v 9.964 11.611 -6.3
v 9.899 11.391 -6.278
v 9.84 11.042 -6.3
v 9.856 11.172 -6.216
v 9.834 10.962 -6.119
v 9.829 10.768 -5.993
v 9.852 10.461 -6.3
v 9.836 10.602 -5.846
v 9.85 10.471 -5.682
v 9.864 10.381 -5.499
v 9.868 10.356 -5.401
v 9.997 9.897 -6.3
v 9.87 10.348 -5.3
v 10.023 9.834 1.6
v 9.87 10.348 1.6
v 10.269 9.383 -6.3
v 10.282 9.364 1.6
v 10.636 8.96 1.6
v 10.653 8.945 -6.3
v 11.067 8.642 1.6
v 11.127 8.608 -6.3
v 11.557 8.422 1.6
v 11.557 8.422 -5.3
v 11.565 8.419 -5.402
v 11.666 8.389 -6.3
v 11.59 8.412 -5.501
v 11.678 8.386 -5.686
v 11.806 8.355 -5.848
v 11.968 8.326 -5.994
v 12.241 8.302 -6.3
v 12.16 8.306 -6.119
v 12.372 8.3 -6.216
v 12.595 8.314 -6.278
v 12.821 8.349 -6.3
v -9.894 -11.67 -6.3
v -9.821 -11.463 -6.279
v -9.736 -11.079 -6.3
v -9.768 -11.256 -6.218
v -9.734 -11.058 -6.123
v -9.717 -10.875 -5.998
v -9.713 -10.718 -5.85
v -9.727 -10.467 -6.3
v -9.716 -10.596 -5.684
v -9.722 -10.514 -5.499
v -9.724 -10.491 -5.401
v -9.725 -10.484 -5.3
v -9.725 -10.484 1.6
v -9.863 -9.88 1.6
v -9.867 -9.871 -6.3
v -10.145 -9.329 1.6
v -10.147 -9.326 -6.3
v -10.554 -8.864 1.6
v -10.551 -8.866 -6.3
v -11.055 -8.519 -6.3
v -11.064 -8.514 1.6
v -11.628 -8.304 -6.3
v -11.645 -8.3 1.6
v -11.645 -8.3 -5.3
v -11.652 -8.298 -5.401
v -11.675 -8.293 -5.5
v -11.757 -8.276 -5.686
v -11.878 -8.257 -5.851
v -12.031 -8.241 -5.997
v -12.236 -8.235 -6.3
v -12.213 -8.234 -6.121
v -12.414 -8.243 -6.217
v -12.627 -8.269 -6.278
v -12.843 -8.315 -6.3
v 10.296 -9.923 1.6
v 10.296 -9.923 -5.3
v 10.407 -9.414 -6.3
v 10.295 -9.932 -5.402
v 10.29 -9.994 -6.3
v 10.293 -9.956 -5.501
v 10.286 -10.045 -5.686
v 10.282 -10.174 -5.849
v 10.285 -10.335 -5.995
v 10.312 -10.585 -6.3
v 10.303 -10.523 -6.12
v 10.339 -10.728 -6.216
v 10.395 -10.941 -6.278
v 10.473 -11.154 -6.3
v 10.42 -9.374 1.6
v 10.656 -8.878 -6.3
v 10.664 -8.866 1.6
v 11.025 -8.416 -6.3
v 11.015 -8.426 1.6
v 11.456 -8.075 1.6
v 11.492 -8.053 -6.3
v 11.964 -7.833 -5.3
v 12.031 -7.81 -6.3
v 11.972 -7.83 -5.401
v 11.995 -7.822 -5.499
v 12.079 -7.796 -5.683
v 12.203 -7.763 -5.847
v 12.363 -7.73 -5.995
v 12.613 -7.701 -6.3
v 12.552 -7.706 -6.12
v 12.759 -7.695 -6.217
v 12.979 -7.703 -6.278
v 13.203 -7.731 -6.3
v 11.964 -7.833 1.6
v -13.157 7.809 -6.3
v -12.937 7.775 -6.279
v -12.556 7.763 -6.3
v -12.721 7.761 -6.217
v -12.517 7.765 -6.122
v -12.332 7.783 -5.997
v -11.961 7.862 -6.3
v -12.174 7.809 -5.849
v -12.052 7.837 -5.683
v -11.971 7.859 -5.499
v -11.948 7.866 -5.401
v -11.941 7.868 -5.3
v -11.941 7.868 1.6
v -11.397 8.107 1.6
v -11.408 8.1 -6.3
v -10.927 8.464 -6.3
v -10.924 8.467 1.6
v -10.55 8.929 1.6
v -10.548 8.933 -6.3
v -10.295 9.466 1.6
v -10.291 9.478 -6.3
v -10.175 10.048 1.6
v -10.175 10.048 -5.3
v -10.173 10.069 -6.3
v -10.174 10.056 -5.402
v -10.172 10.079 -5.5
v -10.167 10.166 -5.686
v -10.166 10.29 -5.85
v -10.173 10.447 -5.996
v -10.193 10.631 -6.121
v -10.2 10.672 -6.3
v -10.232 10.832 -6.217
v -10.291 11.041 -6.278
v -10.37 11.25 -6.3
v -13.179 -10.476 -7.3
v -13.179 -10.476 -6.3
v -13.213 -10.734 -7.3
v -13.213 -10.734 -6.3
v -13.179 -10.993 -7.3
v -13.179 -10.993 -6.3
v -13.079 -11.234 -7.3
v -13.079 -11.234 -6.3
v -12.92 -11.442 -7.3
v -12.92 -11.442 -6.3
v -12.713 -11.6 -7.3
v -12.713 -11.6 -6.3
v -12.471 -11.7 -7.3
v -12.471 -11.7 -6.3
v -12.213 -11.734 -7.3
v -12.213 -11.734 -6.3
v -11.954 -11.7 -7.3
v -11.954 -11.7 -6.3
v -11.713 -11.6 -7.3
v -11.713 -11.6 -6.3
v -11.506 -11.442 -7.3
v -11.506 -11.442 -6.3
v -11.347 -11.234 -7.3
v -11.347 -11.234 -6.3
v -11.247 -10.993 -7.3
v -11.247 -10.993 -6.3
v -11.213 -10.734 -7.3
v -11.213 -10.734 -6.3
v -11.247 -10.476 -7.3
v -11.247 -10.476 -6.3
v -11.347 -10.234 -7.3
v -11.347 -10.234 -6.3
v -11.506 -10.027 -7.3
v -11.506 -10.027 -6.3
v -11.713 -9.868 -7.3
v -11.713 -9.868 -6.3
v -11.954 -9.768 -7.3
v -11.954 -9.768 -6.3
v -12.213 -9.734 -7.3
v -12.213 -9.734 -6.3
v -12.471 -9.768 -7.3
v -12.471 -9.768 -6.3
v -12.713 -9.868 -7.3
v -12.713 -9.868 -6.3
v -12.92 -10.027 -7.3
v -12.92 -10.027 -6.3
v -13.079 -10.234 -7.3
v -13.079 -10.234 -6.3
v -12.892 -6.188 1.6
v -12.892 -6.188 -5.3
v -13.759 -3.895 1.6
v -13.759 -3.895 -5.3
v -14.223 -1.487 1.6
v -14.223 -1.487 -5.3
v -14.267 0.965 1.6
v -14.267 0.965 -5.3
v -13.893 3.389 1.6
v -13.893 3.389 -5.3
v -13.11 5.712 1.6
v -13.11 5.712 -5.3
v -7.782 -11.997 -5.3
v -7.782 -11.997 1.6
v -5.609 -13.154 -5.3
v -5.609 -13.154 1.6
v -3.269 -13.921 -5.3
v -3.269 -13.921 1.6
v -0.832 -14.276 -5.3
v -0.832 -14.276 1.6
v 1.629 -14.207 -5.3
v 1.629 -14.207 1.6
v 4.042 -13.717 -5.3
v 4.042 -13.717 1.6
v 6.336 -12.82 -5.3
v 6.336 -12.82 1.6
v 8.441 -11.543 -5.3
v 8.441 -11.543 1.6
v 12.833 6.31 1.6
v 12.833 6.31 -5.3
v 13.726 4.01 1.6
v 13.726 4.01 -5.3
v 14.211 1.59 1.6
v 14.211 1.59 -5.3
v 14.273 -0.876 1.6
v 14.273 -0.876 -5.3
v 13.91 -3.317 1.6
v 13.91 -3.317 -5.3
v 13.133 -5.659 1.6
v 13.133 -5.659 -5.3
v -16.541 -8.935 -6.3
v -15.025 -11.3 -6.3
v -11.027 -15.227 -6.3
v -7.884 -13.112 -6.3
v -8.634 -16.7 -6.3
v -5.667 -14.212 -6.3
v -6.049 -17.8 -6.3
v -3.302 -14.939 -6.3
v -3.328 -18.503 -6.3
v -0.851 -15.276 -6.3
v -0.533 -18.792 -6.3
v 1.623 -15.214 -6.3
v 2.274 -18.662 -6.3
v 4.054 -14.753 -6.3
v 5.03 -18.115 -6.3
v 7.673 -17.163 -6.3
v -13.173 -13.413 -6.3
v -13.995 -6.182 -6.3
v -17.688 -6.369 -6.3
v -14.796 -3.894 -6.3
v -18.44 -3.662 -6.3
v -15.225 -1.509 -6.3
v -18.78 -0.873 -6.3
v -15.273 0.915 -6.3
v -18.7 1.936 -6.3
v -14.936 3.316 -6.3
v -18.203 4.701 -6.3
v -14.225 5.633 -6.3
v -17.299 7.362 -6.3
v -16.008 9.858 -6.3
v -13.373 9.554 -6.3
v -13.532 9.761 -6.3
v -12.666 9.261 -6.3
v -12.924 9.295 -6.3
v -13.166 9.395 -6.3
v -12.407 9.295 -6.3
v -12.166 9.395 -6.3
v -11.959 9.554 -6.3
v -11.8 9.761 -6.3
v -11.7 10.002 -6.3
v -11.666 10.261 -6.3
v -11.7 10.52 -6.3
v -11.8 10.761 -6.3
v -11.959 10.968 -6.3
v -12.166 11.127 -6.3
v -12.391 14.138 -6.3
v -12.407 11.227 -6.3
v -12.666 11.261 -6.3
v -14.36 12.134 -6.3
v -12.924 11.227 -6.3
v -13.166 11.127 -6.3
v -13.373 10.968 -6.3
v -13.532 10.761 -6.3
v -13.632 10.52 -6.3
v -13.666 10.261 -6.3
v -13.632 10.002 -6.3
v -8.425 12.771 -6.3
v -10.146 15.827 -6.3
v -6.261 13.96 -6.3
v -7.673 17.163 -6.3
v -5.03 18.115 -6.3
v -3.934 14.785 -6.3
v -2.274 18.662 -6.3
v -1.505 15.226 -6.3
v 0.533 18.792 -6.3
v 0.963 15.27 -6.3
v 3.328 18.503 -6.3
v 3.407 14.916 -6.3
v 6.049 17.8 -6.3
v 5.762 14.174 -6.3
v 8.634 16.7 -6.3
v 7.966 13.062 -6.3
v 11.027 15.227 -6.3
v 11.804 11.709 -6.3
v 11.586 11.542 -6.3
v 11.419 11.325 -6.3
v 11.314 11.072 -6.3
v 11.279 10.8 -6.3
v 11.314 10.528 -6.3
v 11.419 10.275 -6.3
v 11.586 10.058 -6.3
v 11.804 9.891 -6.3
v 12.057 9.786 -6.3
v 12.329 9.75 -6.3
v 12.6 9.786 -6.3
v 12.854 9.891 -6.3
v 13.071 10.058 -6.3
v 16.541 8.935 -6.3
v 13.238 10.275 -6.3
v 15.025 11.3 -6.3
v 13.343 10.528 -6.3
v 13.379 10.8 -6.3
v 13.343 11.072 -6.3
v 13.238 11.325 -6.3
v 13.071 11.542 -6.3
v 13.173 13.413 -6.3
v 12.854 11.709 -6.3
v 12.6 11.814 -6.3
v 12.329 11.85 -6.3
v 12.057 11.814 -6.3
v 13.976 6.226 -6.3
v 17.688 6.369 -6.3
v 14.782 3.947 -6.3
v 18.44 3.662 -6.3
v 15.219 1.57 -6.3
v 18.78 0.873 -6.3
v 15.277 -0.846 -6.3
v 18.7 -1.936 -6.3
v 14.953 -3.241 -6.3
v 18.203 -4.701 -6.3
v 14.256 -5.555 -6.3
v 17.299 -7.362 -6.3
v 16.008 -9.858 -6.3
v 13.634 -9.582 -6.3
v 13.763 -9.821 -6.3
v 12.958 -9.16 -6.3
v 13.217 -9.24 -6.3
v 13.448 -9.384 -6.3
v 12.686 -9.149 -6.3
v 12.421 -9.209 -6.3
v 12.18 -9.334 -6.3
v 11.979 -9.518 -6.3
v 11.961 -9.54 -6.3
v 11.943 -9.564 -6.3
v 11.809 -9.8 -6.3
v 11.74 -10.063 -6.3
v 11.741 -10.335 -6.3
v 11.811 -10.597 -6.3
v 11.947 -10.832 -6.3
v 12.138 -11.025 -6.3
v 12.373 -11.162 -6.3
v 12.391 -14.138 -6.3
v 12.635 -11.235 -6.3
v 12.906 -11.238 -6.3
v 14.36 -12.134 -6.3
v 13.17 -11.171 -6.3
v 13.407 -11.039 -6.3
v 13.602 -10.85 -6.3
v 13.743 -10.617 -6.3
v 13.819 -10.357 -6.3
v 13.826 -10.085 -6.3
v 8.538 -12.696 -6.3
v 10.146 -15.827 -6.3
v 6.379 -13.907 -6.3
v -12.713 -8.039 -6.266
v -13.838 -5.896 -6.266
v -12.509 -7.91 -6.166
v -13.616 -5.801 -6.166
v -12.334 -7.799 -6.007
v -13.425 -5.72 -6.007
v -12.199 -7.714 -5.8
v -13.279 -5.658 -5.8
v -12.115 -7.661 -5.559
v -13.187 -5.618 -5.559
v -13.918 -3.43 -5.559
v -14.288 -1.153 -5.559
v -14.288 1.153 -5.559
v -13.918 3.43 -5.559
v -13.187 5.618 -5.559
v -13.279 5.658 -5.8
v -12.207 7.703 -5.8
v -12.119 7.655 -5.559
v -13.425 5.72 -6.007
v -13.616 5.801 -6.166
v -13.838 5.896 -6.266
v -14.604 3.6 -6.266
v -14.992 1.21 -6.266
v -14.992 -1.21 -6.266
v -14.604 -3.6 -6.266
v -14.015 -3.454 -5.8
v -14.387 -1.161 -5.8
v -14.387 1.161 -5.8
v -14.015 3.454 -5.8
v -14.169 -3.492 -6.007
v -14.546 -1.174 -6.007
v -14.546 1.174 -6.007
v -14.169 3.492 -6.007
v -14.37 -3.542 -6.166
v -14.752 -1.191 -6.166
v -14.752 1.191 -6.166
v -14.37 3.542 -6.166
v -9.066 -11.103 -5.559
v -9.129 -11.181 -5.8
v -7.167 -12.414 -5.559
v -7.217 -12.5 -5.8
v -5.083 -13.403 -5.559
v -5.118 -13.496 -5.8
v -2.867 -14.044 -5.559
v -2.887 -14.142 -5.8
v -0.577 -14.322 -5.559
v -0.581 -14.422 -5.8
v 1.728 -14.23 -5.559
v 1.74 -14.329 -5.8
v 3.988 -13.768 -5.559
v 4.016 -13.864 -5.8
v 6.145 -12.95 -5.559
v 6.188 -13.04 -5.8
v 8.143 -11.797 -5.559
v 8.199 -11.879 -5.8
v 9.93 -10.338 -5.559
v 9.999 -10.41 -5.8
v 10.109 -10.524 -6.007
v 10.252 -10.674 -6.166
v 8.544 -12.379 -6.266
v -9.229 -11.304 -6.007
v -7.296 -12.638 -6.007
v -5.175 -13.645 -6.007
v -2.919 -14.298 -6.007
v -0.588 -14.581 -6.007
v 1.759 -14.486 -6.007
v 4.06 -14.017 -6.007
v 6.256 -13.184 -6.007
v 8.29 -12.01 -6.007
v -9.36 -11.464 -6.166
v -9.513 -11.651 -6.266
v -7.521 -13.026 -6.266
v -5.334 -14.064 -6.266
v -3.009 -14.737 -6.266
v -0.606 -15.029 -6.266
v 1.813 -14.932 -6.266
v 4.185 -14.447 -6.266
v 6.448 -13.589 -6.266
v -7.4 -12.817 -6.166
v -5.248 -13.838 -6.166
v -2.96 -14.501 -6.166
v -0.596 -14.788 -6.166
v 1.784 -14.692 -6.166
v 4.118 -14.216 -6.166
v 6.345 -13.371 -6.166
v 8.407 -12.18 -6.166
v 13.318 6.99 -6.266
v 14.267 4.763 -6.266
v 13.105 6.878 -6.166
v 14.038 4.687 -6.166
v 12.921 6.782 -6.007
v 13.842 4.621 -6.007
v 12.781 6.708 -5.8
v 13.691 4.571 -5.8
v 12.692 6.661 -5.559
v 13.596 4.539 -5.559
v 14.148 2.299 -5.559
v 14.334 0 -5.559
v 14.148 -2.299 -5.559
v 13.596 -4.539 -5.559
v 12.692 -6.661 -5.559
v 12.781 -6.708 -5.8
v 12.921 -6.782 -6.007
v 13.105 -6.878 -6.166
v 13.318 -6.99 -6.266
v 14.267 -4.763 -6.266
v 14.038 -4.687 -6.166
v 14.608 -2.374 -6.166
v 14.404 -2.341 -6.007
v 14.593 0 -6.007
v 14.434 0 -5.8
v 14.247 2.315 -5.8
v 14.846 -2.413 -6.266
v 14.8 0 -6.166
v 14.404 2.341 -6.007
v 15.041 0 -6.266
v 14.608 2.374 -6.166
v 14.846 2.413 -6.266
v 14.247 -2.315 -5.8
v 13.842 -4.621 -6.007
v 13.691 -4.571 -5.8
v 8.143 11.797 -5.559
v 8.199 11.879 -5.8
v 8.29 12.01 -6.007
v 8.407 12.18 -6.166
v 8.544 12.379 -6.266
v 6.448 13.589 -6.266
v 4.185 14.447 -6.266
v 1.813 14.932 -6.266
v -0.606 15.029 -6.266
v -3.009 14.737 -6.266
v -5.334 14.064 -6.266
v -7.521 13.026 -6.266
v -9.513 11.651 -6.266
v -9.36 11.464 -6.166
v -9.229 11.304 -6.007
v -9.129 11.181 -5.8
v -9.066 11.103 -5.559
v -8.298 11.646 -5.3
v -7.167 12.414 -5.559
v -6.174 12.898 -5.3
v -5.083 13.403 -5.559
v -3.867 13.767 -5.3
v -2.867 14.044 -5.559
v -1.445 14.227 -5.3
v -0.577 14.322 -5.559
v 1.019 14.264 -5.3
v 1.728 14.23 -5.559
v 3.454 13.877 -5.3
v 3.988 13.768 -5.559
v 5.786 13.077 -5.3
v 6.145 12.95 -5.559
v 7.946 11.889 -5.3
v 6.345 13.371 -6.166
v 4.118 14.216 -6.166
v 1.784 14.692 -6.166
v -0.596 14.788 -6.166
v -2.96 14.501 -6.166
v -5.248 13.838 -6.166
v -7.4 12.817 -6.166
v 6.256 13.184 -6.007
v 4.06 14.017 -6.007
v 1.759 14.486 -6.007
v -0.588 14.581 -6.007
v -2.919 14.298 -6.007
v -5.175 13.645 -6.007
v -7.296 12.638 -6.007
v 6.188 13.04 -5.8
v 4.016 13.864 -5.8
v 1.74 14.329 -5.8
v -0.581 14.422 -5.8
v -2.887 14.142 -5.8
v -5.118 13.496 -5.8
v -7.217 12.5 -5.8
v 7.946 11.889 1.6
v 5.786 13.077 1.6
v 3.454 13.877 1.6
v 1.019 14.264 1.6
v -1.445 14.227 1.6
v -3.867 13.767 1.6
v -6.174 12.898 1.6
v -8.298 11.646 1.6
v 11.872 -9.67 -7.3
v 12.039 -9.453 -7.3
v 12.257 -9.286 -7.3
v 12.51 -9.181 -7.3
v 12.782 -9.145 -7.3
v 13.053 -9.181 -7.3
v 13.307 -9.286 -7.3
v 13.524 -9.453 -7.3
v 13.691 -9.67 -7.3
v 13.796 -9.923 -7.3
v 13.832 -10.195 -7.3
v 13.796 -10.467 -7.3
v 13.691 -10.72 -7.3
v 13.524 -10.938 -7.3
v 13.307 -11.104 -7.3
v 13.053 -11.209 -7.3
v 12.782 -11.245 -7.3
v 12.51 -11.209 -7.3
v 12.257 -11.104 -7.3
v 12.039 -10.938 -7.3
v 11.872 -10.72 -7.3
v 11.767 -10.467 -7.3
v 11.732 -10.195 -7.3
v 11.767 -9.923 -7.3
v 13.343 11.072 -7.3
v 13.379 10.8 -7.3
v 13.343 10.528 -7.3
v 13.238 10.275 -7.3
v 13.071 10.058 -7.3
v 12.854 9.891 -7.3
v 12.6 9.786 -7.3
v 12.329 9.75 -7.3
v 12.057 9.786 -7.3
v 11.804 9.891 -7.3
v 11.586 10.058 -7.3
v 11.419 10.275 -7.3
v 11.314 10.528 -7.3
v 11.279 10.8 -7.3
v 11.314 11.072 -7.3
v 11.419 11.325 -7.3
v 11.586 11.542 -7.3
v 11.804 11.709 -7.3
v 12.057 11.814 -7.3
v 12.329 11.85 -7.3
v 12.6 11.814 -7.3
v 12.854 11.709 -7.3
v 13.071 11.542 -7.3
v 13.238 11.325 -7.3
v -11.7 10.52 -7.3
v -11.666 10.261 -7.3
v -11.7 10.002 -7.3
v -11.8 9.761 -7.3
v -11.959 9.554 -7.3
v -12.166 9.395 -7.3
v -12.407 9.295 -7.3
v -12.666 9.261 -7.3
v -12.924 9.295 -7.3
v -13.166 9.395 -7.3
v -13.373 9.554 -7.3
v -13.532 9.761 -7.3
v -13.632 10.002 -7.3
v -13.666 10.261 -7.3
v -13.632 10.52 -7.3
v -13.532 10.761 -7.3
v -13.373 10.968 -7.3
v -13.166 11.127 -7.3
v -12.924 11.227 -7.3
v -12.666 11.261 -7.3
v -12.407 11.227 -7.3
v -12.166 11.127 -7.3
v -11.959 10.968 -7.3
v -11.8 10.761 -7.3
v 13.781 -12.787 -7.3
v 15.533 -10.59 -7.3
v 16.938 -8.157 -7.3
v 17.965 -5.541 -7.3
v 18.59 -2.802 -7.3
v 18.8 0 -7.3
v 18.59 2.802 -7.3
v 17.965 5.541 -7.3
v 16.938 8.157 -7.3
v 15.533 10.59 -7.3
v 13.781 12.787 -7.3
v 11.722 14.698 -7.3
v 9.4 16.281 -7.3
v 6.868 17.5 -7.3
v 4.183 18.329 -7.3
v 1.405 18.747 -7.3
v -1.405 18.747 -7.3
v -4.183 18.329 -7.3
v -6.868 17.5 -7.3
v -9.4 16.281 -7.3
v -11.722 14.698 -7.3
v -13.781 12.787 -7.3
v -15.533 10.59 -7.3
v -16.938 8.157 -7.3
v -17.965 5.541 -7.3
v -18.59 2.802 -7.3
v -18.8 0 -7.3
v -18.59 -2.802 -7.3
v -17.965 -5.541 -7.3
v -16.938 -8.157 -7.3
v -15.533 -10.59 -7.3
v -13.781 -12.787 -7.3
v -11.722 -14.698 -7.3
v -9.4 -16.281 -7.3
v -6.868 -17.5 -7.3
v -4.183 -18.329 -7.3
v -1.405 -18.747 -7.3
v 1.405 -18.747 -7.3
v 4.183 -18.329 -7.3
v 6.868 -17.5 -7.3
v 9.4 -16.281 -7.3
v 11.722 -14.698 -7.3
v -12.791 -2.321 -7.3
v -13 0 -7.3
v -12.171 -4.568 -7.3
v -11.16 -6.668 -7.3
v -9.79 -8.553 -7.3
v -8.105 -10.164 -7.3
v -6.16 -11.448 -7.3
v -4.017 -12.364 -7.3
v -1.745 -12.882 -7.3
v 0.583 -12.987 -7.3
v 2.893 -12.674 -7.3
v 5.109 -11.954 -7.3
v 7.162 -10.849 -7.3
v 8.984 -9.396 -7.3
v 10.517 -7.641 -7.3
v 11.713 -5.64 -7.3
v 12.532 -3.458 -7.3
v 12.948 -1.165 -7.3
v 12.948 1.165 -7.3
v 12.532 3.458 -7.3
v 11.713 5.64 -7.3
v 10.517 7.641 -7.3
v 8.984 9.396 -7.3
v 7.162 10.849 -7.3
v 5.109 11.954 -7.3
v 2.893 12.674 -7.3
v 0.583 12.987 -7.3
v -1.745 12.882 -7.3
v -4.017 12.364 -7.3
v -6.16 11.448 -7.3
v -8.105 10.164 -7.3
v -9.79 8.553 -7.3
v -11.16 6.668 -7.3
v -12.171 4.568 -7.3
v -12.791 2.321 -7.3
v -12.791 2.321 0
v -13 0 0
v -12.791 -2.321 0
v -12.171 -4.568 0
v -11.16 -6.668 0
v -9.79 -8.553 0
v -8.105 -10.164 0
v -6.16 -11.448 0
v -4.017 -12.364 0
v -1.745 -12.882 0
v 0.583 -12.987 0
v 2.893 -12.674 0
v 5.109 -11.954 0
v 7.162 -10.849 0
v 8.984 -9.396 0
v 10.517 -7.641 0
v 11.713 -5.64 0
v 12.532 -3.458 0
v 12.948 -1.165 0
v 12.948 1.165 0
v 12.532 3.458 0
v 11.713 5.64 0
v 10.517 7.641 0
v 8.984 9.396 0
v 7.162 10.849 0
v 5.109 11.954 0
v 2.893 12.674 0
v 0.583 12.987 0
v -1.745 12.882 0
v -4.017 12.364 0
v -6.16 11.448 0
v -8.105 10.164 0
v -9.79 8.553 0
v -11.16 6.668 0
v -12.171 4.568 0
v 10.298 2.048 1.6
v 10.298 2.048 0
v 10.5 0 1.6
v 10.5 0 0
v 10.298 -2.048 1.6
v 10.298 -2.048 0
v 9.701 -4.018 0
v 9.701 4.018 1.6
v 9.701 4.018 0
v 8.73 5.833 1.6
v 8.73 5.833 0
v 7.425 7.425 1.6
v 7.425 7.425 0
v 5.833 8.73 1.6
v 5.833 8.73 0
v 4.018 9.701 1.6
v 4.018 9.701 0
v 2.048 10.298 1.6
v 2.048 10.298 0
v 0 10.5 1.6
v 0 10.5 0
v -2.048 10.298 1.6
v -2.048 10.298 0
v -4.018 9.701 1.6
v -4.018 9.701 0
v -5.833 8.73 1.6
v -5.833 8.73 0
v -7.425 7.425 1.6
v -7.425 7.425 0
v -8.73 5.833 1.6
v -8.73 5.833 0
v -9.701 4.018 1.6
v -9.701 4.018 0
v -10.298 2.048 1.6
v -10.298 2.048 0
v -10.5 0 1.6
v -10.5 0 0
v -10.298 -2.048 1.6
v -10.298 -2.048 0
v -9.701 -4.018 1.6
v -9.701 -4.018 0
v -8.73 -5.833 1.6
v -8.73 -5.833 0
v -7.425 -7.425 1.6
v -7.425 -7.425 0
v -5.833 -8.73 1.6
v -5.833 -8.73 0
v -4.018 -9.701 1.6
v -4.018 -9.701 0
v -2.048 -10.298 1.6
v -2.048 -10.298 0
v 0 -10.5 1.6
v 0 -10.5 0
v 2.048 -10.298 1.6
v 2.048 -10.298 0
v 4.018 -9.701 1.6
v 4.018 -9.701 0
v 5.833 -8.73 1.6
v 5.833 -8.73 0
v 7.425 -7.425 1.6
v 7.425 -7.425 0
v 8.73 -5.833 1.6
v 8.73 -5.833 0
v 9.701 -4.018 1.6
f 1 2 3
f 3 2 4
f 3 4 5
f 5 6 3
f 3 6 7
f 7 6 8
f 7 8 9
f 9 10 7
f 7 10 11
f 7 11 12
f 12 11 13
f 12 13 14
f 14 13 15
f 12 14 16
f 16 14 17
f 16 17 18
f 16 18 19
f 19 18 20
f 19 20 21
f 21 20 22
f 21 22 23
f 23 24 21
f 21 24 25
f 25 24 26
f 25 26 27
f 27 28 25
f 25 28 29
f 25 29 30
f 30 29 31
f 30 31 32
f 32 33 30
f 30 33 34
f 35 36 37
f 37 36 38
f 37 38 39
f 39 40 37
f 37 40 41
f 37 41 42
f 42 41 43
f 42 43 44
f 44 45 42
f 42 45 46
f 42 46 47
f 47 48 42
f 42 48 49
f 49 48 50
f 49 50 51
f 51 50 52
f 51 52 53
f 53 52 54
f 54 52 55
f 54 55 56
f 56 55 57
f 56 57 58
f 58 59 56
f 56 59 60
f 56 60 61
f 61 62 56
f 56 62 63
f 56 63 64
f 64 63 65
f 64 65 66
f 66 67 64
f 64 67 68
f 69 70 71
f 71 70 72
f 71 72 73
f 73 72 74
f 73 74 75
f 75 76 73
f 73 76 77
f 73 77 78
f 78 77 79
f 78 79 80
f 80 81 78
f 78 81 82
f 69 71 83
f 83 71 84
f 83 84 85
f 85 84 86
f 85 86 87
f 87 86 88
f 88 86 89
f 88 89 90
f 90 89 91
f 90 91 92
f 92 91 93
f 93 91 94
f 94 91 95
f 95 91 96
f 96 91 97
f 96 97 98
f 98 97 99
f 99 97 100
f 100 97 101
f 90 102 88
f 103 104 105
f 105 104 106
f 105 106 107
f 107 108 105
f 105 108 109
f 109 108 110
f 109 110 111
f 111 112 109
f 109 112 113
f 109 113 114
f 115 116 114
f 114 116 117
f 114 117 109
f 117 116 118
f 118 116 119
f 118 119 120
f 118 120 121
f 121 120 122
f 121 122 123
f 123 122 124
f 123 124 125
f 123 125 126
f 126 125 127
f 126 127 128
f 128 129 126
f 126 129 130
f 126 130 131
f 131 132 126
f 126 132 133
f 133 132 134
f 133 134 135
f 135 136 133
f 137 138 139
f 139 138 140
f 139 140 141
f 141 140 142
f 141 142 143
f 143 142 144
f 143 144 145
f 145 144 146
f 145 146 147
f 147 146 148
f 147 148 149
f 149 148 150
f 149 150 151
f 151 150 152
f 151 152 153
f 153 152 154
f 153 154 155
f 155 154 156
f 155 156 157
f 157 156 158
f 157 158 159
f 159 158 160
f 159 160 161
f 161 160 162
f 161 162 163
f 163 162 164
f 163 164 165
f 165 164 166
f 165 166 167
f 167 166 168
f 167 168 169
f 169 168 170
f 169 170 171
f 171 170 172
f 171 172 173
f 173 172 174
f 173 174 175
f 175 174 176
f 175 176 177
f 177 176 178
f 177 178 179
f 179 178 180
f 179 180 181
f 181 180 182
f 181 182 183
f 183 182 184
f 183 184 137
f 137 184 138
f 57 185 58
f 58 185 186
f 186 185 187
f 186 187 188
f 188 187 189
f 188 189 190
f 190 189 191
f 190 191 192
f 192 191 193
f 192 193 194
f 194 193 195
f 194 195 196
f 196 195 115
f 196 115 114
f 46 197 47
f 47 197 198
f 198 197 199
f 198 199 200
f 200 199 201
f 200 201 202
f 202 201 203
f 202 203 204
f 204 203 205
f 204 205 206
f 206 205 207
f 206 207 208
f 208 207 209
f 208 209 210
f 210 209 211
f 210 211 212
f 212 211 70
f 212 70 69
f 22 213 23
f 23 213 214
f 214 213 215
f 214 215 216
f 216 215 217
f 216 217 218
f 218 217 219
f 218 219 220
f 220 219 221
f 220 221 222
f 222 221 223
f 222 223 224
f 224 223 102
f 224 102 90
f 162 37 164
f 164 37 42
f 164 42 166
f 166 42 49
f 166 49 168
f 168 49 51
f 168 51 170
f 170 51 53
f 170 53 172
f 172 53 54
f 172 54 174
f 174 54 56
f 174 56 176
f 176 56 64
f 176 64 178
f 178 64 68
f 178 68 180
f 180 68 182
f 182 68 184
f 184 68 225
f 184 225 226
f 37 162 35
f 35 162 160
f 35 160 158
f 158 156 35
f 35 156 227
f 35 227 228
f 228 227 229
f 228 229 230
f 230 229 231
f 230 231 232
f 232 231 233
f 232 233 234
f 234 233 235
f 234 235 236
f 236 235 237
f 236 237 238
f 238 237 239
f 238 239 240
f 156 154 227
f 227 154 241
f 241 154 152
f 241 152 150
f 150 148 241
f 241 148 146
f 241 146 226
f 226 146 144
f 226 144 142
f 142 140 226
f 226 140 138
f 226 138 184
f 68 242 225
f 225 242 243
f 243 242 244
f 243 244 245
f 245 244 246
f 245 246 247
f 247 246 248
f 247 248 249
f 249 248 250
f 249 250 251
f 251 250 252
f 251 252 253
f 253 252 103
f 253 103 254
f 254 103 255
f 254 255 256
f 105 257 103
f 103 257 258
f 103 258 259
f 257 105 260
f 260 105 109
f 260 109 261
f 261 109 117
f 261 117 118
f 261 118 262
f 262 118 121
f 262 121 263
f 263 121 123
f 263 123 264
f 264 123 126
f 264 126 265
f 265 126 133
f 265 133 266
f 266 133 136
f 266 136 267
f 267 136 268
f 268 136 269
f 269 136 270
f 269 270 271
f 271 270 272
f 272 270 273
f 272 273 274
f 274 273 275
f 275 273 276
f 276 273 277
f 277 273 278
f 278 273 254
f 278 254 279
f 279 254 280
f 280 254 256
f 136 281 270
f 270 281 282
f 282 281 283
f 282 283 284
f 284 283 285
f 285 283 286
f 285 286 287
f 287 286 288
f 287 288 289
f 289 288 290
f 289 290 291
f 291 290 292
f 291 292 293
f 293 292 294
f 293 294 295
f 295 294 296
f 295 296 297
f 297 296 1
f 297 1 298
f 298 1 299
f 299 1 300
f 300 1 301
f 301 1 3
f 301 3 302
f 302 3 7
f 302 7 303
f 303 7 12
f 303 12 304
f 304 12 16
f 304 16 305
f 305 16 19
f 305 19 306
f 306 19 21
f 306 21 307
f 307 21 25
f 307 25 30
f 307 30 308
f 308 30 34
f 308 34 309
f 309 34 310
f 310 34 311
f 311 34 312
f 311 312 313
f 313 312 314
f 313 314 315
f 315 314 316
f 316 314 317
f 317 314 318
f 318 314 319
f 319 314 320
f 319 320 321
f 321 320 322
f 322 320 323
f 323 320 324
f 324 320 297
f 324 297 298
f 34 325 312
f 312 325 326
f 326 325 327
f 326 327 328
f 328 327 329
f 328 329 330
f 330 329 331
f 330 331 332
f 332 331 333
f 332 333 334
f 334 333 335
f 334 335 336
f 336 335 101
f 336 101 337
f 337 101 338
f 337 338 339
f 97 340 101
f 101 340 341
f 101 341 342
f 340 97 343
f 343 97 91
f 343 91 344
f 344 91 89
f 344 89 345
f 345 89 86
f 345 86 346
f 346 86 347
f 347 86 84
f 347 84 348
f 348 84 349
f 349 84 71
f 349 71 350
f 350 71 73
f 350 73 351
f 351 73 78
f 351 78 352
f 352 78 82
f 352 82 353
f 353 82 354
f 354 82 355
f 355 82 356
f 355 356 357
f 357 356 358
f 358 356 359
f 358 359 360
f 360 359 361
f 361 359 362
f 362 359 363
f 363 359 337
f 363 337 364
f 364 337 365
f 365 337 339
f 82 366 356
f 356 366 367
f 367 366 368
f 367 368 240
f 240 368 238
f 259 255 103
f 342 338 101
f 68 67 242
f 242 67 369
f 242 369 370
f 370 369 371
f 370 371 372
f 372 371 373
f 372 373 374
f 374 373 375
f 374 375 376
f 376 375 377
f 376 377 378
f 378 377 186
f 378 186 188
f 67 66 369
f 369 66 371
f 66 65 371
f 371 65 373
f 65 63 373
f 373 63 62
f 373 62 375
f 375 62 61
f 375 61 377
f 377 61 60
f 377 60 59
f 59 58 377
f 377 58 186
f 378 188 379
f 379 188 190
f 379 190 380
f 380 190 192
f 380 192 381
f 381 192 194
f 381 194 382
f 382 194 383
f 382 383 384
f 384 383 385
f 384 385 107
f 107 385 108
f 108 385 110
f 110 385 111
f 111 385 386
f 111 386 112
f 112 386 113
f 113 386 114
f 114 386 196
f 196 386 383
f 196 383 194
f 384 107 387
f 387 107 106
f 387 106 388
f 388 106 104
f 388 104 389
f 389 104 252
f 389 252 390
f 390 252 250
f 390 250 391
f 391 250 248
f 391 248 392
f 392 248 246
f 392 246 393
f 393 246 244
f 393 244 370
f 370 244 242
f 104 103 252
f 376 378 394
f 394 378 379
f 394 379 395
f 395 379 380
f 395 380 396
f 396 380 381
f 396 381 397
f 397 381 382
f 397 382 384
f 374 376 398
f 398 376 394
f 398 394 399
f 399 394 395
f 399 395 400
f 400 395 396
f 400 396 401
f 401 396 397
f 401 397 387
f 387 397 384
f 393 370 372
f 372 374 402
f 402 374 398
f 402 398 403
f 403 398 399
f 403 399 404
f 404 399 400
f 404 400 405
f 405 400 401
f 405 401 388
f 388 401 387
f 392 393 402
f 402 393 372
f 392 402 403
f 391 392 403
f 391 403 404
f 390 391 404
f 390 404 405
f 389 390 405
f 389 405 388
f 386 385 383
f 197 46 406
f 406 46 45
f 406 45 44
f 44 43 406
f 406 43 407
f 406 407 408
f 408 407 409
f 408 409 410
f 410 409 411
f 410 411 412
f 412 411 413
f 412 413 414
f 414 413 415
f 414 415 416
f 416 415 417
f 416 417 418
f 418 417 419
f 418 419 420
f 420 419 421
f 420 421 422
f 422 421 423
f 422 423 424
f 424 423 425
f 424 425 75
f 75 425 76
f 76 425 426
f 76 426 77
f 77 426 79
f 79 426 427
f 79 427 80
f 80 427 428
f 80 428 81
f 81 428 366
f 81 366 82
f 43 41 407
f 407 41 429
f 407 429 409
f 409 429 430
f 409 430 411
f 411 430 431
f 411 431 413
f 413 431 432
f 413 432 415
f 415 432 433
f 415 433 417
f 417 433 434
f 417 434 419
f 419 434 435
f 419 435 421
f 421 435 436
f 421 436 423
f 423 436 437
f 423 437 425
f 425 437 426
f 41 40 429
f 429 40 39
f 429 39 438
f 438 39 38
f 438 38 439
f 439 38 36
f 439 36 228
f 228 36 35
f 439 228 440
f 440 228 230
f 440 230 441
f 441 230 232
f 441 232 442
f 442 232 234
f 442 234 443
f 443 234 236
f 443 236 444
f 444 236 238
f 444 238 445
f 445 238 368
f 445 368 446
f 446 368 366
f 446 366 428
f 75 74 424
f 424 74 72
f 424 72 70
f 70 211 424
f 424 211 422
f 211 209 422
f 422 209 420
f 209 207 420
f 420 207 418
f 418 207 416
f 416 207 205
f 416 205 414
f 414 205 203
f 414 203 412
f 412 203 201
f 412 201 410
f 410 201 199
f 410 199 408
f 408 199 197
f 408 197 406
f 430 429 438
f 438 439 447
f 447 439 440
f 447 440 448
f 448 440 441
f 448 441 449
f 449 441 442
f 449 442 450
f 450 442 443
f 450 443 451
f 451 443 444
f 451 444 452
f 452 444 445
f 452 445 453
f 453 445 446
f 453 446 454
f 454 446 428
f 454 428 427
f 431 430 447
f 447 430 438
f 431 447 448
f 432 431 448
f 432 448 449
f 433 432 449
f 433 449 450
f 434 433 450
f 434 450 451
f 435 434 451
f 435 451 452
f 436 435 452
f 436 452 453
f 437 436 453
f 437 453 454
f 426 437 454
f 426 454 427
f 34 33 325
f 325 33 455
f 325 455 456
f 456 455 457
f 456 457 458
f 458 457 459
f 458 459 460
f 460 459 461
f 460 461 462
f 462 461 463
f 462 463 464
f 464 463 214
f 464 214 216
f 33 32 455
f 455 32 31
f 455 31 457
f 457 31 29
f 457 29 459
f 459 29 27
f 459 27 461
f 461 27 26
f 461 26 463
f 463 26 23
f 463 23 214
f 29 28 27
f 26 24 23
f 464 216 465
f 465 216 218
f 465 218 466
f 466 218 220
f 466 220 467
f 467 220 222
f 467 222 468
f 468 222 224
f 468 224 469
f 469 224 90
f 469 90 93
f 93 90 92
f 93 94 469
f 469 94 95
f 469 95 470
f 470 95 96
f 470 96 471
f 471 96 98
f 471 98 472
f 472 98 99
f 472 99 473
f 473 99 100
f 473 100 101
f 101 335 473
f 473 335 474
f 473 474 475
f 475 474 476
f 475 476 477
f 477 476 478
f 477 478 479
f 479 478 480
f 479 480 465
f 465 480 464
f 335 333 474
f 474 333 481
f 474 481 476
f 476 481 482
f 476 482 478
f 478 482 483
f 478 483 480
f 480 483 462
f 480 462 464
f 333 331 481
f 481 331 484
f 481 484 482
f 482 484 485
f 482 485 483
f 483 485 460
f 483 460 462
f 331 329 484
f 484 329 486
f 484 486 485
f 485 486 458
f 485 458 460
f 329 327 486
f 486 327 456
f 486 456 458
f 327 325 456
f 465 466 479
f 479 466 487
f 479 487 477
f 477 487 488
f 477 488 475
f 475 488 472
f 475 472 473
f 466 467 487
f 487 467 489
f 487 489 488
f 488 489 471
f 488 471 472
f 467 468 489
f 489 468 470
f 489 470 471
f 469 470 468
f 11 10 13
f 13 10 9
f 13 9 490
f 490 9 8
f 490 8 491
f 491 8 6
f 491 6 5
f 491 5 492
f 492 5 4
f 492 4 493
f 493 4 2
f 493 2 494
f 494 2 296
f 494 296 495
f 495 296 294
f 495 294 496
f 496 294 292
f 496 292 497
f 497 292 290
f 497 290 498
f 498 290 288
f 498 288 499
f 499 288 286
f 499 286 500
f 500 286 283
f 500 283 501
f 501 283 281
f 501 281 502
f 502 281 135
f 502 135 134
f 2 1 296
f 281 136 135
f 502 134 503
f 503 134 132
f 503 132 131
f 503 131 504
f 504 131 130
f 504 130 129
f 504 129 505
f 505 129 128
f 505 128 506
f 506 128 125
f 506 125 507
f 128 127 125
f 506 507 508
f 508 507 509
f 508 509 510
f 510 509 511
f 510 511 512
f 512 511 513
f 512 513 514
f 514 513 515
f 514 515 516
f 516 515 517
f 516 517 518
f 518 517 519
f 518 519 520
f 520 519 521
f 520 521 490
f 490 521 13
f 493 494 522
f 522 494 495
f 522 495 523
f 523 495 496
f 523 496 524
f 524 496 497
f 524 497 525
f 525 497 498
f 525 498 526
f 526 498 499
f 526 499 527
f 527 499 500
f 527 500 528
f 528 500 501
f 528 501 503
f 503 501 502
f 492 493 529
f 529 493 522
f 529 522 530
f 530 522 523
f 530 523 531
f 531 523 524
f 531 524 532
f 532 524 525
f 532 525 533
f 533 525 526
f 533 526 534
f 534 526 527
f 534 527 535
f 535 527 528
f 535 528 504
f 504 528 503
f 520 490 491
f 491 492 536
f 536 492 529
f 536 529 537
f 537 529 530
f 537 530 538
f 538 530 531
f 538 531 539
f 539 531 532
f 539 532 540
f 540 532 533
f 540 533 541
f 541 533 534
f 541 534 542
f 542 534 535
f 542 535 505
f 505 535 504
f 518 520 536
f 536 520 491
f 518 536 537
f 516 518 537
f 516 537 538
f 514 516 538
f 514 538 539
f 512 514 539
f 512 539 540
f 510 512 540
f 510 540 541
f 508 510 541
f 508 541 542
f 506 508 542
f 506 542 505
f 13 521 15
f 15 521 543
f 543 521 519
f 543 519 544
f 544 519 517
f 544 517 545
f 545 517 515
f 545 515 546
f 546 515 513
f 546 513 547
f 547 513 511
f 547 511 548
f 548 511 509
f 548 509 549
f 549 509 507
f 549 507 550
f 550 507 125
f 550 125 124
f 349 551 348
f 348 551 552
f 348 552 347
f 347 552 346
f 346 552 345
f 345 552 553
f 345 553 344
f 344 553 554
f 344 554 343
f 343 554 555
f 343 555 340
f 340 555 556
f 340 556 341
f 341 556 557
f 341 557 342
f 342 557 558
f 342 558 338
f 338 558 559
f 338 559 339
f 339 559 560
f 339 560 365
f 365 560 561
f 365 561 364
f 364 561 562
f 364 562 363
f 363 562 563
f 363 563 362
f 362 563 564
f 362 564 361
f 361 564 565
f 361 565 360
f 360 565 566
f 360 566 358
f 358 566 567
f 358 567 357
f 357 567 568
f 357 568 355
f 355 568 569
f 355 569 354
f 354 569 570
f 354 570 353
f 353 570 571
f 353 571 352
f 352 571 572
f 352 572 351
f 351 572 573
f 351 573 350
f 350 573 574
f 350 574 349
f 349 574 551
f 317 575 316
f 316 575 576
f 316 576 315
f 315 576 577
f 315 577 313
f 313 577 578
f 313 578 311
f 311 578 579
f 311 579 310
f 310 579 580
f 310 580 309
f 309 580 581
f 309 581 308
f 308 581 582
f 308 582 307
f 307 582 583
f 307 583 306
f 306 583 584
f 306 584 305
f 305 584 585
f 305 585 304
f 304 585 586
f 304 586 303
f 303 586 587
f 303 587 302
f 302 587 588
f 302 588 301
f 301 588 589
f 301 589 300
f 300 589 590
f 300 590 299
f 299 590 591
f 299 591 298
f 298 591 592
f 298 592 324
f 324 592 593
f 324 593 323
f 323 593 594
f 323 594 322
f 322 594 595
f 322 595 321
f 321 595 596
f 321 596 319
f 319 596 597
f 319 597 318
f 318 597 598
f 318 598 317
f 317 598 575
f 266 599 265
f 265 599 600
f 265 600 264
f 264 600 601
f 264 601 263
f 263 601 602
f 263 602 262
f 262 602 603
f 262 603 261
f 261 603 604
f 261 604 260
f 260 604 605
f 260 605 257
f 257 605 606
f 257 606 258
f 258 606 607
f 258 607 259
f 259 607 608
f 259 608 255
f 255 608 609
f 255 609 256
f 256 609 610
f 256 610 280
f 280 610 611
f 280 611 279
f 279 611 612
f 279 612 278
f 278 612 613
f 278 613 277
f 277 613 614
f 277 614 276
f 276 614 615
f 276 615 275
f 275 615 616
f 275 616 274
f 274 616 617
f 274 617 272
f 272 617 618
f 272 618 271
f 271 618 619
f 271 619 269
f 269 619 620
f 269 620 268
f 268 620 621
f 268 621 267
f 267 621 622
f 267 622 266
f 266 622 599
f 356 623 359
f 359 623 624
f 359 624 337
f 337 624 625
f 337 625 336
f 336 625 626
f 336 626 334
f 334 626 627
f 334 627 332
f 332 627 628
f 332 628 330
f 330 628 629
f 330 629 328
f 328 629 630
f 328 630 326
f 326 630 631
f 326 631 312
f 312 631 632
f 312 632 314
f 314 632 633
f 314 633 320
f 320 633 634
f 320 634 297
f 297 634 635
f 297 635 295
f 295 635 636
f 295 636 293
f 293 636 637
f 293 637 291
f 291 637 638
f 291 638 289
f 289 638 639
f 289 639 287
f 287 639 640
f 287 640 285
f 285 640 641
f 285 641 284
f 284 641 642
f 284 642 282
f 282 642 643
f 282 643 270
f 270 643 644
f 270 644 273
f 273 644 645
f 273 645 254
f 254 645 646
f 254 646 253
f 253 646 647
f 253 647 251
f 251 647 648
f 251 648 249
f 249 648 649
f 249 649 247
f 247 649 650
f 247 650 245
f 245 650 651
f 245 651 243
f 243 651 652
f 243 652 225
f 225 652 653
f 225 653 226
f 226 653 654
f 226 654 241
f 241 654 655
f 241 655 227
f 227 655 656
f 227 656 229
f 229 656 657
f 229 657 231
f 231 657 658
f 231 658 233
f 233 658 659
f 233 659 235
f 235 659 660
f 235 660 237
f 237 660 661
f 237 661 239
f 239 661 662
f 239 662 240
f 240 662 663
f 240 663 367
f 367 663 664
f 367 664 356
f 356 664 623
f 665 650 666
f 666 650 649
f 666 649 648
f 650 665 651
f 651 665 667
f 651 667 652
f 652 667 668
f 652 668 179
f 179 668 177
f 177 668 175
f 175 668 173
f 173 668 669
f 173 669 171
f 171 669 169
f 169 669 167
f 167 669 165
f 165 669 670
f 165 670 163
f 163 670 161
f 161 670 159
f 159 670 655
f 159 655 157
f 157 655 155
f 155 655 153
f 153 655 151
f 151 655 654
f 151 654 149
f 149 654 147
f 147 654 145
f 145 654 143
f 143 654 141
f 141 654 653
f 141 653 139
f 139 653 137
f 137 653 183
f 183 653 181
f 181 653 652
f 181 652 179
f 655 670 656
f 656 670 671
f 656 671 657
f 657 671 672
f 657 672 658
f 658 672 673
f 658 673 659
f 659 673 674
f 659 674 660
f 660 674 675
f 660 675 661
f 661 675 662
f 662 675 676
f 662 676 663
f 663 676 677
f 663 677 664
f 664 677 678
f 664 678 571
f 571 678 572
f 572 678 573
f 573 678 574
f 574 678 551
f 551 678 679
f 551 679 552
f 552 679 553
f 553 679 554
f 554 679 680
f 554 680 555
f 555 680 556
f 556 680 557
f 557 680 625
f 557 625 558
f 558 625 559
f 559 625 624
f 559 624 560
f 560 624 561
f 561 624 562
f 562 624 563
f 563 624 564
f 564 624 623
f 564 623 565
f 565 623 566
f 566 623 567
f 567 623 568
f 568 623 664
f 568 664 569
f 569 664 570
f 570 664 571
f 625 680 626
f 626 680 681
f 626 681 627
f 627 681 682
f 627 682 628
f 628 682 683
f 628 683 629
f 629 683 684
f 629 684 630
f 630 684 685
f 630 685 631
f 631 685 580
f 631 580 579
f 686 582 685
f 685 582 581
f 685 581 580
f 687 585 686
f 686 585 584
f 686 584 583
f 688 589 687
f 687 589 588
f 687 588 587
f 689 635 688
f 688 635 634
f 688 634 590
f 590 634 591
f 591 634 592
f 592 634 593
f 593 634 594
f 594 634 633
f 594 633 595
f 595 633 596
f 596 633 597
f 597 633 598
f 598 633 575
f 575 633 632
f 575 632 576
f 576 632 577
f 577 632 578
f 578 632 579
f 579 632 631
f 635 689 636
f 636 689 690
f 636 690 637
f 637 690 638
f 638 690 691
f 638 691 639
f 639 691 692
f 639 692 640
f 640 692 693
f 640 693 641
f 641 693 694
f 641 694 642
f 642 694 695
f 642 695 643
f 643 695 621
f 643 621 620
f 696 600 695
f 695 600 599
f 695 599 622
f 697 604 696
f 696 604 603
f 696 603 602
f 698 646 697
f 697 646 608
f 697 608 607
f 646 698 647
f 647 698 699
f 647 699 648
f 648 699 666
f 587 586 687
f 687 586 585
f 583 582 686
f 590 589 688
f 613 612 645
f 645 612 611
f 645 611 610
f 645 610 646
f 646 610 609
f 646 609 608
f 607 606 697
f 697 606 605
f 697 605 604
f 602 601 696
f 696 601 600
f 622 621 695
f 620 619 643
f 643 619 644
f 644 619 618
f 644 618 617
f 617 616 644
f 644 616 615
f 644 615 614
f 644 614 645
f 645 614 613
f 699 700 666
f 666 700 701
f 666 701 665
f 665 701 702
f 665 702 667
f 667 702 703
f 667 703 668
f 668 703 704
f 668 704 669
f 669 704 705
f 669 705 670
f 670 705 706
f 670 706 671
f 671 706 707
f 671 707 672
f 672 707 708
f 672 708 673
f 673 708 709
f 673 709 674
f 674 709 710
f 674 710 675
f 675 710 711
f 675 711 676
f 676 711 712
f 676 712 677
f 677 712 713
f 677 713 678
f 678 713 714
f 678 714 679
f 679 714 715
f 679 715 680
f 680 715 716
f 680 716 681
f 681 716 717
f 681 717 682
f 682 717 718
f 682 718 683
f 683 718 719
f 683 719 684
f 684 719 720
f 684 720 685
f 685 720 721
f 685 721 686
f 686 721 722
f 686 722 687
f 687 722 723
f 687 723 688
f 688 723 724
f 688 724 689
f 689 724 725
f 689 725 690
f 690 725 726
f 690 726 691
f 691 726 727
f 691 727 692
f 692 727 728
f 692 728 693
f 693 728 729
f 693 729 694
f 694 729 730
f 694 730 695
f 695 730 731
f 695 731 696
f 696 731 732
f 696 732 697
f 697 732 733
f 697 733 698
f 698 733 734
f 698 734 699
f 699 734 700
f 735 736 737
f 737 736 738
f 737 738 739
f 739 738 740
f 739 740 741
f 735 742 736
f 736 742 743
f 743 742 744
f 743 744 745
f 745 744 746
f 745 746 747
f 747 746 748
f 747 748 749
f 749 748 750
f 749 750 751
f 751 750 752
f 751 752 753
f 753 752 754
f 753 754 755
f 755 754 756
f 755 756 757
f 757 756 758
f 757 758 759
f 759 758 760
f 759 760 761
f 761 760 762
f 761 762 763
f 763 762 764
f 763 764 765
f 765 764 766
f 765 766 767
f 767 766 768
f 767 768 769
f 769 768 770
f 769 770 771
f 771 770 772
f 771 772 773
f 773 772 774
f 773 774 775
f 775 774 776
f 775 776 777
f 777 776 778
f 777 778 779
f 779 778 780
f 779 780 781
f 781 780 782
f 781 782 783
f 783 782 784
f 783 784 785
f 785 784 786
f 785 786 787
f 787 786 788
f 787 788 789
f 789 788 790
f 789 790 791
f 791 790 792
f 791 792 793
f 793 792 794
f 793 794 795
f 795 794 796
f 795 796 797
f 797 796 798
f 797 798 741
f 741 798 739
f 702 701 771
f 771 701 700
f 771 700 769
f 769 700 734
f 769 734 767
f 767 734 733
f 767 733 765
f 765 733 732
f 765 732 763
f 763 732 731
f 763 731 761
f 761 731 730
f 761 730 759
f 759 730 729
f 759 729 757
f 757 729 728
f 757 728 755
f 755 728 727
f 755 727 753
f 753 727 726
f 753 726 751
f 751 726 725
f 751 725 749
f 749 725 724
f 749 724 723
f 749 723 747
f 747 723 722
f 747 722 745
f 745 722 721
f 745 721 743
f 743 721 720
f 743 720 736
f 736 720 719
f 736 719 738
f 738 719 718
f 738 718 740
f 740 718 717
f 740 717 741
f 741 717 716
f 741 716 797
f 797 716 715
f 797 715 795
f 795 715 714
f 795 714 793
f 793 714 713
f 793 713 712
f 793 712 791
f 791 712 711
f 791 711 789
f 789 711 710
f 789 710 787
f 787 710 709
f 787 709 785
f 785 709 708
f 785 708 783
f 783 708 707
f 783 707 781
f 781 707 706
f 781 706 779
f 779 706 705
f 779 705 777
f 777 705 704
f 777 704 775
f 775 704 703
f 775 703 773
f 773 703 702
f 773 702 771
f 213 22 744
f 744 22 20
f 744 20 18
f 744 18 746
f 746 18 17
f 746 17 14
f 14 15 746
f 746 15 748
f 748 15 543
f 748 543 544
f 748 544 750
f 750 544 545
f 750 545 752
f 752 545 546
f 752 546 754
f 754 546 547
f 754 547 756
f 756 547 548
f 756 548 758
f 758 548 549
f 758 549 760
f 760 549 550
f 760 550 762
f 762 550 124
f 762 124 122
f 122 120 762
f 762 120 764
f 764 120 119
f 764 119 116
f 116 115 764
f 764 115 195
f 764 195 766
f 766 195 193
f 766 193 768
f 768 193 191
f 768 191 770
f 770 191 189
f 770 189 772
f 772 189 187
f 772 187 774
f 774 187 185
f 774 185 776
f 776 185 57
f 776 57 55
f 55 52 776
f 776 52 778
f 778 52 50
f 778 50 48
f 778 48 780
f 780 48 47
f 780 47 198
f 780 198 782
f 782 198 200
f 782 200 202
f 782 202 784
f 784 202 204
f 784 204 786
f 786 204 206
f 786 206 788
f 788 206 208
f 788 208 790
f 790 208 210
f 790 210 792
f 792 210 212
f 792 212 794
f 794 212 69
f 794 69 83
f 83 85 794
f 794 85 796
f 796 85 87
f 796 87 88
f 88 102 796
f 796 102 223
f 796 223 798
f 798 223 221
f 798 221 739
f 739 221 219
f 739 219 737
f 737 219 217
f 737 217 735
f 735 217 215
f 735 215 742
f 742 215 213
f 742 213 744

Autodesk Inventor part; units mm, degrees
ref_plane "YZ Plane" through (0, 0, 0) normal (1, 0, 0) x (0, 1, 0)
ref_plane "XZ Plane" through (0, 0, 0) normal (0, 1, 0) x (-1, 0, 0)
sketch "Sketch1" plane through (0, 0, 0) normal (0, 0, 1) x (1, 0, 0)
  circle A0 centre (0, 0) radius 12.7 projected
  circle A1 centre (0, 0) radius 10.5 projected
  circle A2 centre (0, 0) radius 14.3
  dimension "d0" = 1.6
extrude "Extrusion1" add sketch "Sketch1" along normal blind 1.6 contours A0 | A2
sketch "Sketch2" plane through (0, 0, 0) normal (0, 0, -1) x (-1, 0, 0)
  circle A0 centre (0, 0) radius 12.7 projected
  circle A1 centre (0, 0) radius 14.3 projected
  circle A2 centre (0, 0) radius 13
  dimension "d3" = 0.3
extrude "Extrusion2" add sketch "Sketch2" along normal blind 6.3 contours A1
sketch "Sketch3" plane through (0, 0, -6.3) normal (0, 0, -1) x (-1, 0, 0)
  circle A0 centre (0, 0) radius 14.3 projected
  circle A1 centre (19.8743, -0.3764) radius 0.95 projected
  circle A2 centre (12.6657, 10.2607) radius 0.95 projected
  circle A3 centre (-12.3285, 10.8) radius 1.05 projected
  circle A4 centre (-20.1164, 0.4865) radius 0.95 projected
  circle A5 centre (-12.7815, -10.1951) radius 0.95 projected
  circle A6 centre (12.2127, -10.7344) radius 0.95 projected
  circle A7 centre (0, 0) radius 18.8
  circle A8 centre (0, 0) radius 13 projected
  dimension "d6" = 4.5
ref_plane "Work Plane1" through (-47.7309, -37.9502, -7.3) normal (0, 0, 1) x (0.9998, 0.0216, 0)
extrude "Extrusion3" add sketch "Sketch3" along normal up to surface (1 mm away) contours A0 | A7
fillet "Fillet1" radius 1 1 edges at (14.3, 0, -6.3)
sketch "Sketch4" plane through (0, 0, -6.3) normal (0, 0, 1) x (1, 0, 0)
  circle A0 centre (-12.2127, -10.7344) radius 0.95 projected
  circle A1 centre (-12.2127, -10.7344) radius 2.5
  circle A2 centre (12.7815, -10.1951) radius 0.95 projected
  circle A3 centre (12.7815, -10.1951) radius 2.5
  circle A4 centre (12.3285, 10.8) radius 1.05 projected
  circle A5 centre (12.3285, 10.8) radius 2.5
  circle A6 centre (-12.6657, 10.2607) radius 0.95 projected
  circle A7 centre (-12.6657, 10.2607) radius 2.5
  circle A8 centre (-12.2127, -10.7344) radius 0.95
  point P0 (0, 0)
  point P1 (-11.31, -10.3041)
  point P2 (-11.6701, -9.8944)
  dimension "d10" = 5
  dimension "d11" = 5
  dimension "d12" = 5
  dimension "d13" = 5
extrude "Extrusion4" cut sketch "Sketch4" along normal blind 8.05
properties part number "FilterHolder"
